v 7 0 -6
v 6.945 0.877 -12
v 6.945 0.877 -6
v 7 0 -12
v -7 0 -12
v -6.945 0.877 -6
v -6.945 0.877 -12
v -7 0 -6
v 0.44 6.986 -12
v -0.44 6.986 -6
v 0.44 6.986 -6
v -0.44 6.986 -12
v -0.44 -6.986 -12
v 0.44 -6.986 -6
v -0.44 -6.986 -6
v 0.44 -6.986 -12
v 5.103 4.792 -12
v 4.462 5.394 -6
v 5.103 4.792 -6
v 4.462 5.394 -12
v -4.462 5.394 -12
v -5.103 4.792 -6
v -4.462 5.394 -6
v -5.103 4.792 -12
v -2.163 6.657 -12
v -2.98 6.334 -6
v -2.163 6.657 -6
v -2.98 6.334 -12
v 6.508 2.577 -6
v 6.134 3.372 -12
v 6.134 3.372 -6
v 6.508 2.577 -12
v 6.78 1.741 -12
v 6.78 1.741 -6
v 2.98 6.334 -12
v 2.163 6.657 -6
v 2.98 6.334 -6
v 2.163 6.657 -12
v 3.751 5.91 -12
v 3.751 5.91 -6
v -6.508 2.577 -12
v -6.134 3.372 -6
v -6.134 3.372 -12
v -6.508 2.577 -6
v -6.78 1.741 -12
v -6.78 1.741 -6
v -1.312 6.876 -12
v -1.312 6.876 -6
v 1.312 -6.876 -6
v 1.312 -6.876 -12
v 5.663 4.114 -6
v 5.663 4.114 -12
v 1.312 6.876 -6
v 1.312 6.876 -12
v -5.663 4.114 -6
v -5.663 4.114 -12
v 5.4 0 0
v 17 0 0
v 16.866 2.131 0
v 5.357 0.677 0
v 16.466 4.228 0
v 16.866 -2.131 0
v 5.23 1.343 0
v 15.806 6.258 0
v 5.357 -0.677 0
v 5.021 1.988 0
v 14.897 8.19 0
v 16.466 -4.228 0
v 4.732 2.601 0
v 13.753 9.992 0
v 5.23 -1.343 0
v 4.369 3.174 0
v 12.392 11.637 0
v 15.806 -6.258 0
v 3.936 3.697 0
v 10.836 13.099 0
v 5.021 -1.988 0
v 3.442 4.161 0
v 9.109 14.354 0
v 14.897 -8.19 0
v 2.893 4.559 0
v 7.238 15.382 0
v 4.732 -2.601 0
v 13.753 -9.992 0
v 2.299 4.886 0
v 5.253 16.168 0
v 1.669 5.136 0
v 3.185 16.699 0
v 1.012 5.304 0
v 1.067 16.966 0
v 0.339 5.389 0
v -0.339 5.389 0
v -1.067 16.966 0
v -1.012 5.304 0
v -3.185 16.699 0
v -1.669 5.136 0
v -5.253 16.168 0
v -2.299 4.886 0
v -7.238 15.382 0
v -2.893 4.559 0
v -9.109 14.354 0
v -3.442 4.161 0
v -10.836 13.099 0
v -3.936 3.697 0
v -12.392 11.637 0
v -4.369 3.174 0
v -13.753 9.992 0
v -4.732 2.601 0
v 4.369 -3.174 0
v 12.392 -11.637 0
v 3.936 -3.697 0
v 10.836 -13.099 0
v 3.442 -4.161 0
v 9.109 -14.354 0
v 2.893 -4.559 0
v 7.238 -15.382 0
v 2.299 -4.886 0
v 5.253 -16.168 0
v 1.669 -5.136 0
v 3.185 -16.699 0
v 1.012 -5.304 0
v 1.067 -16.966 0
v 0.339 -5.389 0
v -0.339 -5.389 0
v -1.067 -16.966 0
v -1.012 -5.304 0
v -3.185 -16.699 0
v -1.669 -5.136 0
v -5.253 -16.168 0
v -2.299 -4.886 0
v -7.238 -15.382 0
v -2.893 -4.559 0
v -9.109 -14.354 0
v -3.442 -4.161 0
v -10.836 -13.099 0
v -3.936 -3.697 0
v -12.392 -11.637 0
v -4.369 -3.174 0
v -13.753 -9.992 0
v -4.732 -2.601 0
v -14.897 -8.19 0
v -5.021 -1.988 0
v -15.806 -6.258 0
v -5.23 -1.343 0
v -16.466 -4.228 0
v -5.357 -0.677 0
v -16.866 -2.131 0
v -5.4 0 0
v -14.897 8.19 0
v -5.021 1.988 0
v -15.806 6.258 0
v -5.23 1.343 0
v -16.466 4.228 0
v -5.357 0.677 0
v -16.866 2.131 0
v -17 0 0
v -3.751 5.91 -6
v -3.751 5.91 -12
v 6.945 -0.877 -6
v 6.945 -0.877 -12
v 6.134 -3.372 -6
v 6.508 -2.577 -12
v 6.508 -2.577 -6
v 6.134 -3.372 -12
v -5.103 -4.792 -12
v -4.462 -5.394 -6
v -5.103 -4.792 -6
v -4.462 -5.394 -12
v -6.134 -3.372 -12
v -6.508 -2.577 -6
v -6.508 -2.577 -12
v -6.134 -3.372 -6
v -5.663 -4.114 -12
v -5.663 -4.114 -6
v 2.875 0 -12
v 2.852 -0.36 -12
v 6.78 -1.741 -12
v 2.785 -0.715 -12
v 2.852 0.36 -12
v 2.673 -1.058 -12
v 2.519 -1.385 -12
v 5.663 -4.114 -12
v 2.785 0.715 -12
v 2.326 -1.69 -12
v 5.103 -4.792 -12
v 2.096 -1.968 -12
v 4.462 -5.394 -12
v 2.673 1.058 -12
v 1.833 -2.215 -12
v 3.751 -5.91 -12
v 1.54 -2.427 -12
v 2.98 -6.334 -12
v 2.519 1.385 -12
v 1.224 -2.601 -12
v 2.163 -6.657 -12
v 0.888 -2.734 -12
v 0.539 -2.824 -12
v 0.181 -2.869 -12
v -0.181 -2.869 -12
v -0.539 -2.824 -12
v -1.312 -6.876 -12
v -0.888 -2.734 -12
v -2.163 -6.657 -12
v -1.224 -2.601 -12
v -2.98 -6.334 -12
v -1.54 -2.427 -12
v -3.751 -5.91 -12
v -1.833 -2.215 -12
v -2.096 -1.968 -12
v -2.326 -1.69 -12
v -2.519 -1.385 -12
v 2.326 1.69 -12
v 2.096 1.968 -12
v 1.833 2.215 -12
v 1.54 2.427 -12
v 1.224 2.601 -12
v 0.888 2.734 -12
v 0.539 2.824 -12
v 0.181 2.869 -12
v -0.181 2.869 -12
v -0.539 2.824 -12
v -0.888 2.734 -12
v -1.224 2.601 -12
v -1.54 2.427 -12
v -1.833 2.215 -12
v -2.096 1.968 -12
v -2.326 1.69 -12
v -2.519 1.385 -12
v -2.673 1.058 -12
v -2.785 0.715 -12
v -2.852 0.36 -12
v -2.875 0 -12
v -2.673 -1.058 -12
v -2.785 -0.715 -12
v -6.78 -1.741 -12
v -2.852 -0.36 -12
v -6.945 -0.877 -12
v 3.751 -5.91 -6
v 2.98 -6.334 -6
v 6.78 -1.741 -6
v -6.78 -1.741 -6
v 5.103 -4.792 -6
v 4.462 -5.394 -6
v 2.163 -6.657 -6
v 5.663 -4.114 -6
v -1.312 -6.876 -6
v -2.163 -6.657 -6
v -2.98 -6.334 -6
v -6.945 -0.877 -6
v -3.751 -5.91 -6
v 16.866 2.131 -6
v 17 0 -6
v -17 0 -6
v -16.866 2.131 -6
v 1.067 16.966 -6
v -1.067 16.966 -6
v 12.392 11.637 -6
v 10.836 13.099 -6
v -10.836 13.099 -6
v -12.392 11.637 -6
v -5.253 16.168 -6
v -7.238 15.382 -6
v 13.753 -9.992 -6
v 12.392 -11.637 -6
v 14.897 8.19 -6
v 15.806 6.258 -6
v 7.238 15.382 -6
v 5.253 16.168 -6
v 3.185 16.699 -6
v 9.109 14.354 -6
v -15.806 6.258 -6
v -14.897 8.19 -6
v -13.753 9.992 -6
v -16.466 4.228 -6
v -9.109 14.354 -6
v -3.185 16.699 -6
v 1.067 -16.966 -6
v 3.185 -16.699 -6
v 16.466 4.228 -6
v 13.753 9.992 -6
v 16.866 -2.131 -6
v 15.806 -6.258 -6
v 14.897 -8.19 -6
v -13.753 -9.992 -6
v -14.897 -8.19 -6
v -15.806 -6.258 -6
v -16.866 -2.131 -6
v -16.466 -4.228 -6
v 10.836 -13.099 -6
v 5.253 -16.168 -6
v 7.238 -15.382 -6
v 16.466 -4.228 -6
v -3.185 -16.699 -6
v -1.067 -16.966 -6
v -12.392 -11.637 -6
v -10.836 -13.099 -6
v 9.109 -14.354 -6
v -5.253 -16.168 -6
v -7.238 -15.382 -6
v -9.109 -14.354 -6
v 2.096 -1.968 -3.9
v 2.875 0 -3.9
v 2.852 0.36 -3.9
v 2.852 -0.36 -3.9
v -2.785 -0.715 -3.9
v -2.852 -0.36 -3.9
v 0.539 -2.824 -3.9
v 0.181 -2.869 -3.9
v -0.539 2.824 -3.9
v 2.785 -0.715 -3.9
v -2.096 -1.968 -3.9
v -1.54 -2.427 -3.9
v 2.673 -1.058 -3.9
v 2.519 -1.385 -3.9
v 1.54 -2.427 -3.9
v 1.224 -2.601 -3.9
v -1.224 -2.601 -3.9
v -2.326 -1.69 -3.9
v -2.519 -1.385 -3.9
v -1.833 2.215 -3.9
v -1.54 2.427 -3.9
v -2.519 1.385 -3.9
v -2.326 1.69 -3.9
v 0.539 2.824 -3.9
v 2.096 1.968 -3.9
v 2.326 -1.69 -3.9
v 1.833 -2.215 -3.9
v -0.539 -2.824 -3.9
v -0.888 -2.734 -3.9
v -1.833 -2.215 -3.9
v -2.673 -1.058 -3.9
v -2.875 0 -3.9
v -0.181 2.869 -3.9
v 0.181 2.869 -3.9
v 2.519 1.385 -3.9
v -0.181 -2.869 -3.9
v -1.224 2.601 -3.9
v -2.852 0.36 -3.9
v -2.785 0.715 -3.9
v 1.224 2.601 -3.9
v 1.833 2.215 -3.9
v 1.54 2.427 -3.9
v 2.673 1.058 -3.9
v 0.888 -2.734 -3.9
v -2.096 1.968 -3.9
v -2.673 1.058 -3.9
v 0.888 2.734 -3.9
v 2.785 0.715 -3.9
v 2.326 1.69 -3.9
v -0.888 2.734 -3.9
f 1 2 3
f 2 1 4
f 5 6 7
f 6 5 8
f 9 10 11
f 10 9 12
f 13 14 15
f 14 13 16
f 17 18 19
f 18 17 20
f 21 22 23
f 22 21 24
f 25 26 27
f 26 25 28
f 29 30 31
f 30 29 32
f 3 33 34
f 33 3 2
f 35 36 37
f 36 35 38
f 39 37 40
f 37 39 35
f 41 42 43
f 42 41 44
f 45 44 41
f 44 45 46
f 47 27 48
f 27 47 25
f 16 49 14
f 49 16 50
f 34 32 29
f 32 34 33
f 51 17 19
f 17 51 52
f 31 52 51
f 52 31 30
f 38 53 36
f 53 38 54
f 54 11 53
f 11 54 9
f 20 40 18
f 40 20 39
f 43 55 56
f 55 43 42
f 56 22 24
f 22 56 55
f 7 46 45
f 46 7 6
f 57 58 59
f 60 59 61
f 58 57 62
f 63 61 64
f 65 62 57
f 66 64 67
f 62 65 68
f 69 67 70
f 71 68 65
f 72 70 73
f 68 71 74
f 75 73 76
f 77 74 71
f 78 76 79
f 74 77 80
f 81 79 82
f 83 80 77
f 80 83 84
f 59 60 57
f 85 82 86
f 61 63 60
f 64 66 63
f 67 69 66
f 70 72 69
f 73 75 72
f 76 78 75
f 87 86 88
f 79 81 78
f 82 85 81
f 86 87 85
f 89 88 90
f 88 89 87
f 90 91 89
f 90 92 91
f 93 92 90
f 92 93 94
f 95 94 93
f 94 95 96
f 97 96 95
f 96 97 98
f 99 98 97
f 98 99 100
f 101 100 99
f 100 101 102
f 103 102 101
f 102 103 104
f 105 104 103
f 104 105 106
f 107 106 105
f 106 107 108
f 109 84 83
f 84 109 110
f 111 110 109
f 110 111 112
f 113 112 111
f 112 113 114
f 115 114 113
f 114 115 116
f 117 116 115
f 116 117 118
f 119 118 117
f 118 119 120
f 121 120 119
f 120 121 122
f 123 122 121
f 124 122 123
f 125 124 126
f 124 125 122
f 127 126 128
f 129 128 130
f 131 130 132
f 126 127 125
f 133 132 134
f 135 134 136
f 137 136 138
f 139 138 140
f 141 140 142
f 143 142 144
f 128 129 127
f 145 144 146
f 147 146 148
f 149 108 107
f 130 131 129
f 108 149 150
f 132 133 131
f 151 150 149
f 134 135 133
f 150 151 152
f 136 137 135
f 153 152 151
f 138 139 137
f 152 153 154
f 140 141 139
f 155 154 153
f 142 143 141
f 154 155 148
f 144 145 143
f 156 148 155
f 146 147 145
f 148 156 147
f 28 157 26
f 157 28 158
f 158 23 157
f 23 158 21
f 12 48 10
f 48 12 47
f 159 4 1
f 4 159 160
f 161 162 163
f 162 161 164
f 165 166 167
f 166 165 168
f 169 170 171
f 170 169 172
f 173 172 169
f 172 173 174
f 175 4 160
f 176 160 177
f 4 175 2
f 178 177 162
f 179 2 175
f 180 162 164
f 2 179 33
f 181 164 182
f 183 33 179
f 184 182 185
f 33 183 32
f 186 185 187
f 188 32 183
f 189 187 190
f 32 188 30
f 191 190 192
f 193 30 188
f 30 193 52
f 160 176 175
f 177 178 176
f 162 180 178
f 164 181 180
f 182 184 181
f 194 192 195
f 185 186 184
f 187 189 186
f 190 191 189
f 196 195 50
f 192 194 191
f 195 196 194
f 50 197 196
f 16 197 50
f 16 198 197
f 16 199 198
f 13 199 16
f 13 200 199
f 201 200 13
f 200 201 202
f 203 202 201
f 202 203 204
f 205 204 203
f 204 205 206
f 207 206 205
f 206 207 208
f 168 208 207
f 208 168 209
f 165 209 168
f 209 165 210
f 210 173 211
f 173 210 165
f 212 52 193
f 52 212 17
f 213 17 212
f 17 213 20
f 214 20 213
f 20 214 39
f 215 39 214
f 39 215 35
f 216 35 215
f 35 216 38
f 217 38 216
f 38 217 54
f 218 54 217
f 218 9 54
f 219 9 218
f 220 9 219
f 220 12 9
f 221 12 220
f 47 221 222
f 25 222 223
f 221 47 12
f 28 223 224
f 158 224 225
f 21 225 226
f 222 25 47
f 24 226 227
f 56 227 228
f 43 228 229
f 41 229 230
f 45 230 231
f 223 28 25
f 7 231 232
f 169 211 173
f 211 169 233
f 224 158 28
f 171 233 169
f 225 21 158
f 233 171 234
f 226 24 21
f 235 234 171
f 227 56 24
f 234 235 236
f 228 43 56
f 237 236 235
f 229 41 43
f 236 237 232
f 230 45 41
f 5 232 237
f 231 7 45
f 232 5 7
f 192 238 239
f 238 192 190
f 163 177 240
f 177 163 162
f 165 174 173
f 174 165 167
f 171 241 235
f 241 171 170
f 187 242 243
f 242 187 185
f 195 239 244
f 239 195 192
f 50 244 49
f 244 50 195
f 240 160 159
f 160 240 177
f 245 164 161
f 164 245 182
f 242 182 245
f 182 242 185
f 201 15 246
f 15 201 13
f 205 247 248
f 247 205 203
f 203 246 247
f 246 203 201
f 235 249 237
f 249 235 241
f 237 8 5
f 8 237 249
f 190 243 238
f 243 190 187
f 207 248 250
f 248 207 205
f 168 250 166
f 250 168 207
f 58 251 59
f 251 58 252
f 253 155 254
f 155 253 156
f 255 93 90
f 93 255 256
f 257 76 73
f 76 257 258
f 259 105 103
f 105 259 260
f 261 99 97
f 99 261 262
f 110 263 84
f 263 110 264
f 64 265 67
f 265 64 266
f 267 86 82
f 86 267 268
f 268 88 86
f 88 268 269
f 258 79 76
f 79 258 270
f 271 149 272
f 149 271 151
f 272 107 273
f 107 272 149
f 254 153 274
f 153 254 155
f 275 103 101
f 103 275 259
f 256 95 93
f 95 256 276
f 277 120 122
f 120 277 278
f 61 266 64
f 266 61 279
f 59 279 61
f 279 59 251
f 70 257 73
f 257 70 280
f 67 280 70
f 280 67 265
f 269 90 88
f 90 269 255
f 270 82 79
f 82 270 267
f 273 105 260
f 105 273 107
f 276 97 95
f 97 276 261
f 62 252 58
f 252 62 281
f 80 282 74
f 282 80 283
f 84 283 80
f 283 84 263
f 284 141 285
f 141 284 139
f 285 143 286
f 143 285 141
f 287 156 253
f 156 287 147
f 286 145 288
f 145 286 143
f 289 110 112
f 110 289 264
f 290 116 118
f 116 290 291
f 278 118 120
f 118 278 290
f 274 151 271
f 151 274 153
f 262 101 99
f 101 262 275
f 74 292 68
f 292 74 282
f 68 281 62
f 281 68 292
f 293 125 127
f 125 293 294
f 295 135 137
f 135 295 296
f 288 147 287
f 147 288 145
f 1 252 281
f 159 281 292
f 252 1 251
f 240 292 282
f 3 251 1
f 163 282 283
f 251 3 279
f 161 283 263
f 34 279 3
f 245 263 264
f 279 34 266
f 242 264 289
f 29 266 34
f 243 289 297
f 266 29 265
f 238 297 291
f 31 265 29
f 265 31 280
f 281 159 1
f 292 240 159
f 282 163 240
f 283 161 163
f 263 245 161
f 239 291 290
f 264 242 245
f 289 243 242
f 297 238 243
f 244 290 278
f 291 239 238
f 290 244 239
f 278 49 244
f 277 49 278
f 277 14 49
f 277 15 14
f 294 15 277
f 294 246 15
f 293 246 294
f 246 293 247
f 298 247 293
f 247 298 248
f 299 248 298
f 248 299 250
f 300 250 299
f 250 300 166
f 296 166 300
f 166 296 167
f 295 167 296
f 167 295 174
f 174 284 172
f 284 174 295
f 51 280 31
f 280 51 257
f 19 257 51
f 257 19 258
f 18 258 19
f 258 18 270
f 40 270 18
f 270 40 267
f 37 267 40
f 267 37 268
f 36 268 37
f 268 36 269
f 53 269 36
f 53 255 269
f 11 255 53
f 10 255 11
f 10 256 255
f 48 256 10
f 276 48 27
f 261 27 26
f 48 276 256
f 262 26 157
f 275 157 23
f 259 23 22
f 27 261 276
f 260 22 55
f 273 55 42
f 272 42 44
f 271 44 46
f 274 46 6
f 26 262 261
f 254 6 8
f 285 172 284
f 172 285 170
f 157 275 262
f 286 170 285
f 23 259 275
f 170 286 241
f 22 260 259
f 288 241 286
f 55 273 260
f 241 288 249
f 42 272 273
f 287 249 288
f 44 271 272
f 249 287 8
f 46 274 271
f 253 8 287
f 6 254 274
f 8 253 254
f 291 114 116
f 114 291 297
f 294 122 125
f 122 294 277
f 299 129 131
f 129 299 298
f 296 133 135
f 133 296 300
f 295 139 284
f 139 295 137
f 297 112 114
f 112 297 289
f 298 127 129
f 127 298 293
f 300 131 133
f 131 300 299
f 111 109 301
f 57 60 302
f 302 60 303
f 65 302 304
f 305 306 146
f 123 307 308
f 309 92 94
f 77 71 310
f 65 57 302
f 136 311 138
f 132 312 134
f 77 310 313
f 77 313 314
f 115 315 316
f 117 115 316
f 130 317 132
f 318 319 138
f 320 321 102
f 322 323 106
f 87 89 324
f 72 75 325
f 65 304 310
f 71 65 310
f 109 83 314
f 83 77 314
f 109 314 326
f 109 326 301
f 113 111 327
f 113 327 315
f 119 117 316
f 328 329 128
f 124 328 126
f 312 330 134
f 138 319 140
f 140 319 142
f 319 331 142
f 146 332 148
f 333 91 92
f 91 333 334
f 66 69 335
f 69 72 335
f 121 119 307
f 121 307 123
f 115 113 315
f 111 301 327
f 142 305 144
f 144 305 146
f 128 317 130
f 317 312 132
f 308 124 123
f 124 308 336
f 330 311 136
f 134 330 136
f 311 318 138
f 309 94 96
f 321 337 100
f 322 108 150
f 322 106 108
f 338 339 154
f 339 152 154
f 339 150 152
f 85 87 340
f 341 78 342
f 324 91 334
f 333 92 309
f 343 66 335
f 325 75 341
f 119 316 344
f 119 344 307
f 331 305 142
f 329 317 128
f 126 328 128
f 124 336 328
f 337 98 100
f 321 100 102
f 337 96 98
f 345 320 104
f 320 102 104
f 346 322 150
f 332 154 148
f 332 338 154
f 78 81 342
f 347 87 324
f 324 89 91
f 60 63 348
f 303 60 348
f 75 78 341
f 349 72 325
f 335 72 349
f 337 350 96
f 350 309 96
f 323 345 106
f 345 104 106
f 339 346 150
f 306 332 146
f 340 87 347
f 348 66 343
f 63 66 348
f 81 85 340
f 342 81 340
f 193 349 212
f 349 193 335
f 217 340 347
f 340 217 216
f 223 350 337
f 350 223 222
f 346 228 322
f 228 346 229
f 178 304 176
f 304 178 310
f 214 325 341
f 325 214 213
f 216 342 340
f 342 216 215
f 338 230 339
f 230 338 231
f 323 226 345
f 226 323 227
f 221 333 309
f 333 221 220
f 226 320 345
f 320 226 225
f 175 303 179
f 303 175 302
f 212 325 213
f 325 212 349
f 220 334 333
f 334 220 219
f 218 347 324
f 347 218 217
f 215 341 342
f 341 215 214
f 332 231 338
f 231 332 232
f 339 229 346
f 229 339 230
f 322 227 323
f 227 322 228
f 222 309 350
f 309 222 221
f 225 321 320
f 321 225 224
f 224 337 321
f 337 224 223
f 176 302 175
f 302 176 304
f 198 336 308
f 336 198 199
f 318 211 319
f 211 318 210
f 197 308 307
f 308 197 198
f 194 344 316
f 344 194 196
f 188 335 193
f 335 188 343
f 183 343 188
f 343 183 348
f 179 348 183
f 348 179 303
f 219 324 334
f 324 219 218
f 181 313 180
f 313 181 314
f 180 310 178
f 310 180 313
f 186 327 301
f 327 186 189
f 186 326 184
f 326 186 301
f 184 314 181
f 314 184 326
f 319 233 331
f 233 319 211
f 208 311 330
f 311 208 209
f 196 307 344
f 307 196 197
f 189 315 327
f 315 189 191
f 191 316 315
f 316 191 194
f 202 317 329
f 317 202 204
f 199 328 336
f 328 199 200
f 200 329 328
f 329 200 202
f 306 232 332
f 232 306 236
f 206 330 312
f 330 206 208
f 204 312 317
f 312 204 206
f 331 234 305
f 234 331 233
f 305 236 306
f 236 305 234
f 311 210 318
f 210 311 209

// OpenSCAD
$fn = 50;


difference() {
	union() {
		translate(v = [0, 0, -12.0000000000]) {
			cylinder(h = 12, r = 7.0000000000);
		}
		translate(v = [0, 0, -6.0000000000]) {
			cylinder(h = 6, r = 17.0000000000);
		}
	}
	union() {
		translate(v = [0, 0, 0]) {
			rotate(a = [0, 0, 0]) {
				difference() {
					union() {
						#translate(v = [0, 0, -12.0000000000]) {
							cylinder(h = 12, r = 2.6000000000);
						}
						#translate(v = [0, 0, -3.9000000000]) {
							cylinder(h = 3.9000000000, r = 7.0000000000, r1 = 2.8750000000, r2 = 5.4000000000);
						}
						#translate(v = [0, 0, -12.0000000000]) {
							cylinder(h = 12, r = 2.8750000000);
						}
						#translate(v = [0, 0, -12.0000000000]) {
							cylinder(h = 12, r = 2.6000000000);
						}
					}
					union();
				}
			}
		}
	}
}
